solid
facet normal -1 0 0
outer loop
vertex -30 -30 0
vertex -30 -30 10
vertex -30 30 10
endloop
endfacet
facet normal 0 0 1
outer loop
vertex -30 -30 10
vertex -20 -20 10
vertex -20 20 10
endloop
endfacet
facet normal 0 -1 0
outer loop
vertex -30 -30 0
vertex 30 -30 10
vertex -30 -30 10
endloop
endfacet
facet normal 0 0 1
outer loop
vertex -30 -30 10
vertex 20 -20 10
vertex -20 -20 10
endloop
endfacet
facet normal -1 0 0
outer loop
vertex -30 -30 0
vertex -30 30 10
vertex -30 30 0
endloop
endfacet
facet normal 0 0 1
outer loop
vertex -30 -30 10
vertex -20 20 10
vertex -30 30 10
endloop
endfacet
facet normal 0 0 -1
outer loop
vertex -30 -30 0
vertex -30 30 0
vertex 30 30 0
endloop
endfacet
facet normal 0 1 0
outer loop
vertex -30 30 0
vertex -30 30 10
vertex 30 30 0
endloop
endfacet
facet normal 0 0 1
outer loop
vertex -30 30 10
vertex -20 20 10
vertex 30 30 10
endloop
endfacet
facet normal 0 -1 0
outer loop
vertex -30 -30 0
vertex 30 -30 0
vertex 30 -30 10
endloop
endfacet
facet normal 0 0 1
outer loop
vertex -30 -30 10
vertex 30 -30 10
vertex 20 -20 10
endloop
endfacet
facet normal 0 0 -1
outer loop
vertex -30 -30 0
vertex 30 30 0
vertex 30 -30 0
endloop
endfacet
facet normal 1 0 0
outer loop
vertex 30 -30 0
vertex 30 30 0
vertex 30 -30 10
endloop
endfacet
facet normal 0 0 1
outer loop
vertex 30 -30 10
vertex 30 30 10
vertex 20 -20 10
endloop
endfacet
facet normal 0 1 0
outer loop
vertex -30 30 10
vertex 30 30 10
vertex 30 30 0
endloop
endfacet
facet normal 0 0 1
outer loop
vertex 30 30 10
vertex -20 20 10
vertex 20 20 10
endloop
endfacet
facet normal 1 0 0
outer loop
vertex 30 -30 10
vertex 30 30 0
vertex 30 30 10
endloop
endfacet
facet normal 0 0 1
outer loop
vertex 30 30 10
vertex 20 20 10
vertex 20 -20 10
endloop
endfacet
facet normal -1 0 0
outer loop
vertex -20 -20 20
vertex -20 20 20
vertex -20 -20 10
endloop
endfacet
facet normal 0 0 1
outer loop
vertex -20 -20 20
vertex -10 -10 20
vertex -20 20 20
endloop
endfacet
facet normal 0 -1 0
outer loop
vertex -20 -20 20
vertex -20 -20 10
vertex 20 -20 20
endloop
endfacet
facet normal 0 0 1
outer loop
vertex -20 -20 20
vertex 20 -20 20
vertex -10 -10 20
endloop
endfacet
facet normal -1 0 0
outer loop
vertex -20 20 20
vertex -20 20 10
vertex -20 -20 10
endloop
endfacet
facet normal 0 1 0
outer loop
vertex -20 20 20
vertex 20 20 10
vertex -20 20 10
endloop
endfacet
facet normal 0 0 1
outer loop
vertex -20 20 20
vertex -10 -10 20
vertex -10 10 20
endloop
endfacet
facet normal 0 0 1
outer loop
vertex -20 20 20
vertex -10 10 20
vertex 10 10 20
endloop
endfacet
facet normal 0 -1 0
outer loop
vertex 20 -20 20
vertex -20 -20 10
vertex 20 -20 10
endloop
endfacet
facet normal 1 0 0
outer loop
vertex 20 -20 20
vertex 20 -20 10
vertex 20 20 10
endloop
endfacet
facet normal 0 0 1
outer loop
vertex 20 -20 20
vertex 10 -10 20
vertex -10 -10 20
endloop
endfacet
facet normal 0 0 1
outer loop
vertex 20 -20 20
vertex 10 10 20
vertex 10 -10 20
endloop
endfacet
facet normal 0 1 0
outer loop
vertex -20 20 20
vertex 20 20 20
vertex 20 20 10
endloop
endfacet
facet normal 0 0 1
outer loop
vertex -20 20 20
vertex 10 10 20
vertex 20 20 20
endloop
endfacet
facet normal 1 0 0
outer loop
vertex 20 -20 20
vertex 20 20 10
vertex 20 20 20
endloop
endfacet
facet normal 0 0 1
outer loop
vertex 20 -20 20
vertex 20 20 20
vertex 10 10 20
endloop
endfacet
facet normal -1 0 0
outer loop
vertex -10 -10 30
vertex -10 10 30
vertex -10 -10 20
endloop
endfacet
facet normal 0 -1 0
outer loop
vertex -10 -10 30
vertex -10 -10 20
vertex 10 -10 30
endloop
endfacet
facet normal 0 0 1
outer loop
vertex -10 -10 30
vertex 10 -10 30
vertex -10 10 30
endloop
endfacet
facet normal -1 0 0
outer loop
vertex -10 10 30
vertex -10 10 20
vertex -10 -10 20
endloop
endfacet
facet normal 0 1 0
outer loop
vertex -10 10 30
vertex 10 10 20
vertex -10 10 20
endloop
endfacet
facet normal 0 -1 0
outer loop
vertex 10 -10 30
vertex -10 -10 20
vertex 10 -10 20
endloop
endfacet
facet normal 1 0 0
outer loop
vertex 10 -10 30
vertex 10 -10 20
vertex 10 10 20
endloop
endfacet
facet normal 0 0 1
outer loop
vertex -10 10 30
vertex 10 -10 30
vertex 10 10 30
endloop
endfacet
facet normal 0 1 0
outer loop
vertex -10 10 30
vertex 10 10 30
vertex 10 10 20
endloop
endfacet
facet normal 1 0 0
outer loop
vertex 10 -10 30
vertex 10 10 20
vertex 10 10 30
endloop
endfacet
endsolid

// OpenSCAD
translate([-30, -30, 0]) cube([60, 60, 10]);
translate([-20, -20, 10]) cube([40, 40, 10]);
translate([-10, -10, 20]) cube([20, 20, 10]);
